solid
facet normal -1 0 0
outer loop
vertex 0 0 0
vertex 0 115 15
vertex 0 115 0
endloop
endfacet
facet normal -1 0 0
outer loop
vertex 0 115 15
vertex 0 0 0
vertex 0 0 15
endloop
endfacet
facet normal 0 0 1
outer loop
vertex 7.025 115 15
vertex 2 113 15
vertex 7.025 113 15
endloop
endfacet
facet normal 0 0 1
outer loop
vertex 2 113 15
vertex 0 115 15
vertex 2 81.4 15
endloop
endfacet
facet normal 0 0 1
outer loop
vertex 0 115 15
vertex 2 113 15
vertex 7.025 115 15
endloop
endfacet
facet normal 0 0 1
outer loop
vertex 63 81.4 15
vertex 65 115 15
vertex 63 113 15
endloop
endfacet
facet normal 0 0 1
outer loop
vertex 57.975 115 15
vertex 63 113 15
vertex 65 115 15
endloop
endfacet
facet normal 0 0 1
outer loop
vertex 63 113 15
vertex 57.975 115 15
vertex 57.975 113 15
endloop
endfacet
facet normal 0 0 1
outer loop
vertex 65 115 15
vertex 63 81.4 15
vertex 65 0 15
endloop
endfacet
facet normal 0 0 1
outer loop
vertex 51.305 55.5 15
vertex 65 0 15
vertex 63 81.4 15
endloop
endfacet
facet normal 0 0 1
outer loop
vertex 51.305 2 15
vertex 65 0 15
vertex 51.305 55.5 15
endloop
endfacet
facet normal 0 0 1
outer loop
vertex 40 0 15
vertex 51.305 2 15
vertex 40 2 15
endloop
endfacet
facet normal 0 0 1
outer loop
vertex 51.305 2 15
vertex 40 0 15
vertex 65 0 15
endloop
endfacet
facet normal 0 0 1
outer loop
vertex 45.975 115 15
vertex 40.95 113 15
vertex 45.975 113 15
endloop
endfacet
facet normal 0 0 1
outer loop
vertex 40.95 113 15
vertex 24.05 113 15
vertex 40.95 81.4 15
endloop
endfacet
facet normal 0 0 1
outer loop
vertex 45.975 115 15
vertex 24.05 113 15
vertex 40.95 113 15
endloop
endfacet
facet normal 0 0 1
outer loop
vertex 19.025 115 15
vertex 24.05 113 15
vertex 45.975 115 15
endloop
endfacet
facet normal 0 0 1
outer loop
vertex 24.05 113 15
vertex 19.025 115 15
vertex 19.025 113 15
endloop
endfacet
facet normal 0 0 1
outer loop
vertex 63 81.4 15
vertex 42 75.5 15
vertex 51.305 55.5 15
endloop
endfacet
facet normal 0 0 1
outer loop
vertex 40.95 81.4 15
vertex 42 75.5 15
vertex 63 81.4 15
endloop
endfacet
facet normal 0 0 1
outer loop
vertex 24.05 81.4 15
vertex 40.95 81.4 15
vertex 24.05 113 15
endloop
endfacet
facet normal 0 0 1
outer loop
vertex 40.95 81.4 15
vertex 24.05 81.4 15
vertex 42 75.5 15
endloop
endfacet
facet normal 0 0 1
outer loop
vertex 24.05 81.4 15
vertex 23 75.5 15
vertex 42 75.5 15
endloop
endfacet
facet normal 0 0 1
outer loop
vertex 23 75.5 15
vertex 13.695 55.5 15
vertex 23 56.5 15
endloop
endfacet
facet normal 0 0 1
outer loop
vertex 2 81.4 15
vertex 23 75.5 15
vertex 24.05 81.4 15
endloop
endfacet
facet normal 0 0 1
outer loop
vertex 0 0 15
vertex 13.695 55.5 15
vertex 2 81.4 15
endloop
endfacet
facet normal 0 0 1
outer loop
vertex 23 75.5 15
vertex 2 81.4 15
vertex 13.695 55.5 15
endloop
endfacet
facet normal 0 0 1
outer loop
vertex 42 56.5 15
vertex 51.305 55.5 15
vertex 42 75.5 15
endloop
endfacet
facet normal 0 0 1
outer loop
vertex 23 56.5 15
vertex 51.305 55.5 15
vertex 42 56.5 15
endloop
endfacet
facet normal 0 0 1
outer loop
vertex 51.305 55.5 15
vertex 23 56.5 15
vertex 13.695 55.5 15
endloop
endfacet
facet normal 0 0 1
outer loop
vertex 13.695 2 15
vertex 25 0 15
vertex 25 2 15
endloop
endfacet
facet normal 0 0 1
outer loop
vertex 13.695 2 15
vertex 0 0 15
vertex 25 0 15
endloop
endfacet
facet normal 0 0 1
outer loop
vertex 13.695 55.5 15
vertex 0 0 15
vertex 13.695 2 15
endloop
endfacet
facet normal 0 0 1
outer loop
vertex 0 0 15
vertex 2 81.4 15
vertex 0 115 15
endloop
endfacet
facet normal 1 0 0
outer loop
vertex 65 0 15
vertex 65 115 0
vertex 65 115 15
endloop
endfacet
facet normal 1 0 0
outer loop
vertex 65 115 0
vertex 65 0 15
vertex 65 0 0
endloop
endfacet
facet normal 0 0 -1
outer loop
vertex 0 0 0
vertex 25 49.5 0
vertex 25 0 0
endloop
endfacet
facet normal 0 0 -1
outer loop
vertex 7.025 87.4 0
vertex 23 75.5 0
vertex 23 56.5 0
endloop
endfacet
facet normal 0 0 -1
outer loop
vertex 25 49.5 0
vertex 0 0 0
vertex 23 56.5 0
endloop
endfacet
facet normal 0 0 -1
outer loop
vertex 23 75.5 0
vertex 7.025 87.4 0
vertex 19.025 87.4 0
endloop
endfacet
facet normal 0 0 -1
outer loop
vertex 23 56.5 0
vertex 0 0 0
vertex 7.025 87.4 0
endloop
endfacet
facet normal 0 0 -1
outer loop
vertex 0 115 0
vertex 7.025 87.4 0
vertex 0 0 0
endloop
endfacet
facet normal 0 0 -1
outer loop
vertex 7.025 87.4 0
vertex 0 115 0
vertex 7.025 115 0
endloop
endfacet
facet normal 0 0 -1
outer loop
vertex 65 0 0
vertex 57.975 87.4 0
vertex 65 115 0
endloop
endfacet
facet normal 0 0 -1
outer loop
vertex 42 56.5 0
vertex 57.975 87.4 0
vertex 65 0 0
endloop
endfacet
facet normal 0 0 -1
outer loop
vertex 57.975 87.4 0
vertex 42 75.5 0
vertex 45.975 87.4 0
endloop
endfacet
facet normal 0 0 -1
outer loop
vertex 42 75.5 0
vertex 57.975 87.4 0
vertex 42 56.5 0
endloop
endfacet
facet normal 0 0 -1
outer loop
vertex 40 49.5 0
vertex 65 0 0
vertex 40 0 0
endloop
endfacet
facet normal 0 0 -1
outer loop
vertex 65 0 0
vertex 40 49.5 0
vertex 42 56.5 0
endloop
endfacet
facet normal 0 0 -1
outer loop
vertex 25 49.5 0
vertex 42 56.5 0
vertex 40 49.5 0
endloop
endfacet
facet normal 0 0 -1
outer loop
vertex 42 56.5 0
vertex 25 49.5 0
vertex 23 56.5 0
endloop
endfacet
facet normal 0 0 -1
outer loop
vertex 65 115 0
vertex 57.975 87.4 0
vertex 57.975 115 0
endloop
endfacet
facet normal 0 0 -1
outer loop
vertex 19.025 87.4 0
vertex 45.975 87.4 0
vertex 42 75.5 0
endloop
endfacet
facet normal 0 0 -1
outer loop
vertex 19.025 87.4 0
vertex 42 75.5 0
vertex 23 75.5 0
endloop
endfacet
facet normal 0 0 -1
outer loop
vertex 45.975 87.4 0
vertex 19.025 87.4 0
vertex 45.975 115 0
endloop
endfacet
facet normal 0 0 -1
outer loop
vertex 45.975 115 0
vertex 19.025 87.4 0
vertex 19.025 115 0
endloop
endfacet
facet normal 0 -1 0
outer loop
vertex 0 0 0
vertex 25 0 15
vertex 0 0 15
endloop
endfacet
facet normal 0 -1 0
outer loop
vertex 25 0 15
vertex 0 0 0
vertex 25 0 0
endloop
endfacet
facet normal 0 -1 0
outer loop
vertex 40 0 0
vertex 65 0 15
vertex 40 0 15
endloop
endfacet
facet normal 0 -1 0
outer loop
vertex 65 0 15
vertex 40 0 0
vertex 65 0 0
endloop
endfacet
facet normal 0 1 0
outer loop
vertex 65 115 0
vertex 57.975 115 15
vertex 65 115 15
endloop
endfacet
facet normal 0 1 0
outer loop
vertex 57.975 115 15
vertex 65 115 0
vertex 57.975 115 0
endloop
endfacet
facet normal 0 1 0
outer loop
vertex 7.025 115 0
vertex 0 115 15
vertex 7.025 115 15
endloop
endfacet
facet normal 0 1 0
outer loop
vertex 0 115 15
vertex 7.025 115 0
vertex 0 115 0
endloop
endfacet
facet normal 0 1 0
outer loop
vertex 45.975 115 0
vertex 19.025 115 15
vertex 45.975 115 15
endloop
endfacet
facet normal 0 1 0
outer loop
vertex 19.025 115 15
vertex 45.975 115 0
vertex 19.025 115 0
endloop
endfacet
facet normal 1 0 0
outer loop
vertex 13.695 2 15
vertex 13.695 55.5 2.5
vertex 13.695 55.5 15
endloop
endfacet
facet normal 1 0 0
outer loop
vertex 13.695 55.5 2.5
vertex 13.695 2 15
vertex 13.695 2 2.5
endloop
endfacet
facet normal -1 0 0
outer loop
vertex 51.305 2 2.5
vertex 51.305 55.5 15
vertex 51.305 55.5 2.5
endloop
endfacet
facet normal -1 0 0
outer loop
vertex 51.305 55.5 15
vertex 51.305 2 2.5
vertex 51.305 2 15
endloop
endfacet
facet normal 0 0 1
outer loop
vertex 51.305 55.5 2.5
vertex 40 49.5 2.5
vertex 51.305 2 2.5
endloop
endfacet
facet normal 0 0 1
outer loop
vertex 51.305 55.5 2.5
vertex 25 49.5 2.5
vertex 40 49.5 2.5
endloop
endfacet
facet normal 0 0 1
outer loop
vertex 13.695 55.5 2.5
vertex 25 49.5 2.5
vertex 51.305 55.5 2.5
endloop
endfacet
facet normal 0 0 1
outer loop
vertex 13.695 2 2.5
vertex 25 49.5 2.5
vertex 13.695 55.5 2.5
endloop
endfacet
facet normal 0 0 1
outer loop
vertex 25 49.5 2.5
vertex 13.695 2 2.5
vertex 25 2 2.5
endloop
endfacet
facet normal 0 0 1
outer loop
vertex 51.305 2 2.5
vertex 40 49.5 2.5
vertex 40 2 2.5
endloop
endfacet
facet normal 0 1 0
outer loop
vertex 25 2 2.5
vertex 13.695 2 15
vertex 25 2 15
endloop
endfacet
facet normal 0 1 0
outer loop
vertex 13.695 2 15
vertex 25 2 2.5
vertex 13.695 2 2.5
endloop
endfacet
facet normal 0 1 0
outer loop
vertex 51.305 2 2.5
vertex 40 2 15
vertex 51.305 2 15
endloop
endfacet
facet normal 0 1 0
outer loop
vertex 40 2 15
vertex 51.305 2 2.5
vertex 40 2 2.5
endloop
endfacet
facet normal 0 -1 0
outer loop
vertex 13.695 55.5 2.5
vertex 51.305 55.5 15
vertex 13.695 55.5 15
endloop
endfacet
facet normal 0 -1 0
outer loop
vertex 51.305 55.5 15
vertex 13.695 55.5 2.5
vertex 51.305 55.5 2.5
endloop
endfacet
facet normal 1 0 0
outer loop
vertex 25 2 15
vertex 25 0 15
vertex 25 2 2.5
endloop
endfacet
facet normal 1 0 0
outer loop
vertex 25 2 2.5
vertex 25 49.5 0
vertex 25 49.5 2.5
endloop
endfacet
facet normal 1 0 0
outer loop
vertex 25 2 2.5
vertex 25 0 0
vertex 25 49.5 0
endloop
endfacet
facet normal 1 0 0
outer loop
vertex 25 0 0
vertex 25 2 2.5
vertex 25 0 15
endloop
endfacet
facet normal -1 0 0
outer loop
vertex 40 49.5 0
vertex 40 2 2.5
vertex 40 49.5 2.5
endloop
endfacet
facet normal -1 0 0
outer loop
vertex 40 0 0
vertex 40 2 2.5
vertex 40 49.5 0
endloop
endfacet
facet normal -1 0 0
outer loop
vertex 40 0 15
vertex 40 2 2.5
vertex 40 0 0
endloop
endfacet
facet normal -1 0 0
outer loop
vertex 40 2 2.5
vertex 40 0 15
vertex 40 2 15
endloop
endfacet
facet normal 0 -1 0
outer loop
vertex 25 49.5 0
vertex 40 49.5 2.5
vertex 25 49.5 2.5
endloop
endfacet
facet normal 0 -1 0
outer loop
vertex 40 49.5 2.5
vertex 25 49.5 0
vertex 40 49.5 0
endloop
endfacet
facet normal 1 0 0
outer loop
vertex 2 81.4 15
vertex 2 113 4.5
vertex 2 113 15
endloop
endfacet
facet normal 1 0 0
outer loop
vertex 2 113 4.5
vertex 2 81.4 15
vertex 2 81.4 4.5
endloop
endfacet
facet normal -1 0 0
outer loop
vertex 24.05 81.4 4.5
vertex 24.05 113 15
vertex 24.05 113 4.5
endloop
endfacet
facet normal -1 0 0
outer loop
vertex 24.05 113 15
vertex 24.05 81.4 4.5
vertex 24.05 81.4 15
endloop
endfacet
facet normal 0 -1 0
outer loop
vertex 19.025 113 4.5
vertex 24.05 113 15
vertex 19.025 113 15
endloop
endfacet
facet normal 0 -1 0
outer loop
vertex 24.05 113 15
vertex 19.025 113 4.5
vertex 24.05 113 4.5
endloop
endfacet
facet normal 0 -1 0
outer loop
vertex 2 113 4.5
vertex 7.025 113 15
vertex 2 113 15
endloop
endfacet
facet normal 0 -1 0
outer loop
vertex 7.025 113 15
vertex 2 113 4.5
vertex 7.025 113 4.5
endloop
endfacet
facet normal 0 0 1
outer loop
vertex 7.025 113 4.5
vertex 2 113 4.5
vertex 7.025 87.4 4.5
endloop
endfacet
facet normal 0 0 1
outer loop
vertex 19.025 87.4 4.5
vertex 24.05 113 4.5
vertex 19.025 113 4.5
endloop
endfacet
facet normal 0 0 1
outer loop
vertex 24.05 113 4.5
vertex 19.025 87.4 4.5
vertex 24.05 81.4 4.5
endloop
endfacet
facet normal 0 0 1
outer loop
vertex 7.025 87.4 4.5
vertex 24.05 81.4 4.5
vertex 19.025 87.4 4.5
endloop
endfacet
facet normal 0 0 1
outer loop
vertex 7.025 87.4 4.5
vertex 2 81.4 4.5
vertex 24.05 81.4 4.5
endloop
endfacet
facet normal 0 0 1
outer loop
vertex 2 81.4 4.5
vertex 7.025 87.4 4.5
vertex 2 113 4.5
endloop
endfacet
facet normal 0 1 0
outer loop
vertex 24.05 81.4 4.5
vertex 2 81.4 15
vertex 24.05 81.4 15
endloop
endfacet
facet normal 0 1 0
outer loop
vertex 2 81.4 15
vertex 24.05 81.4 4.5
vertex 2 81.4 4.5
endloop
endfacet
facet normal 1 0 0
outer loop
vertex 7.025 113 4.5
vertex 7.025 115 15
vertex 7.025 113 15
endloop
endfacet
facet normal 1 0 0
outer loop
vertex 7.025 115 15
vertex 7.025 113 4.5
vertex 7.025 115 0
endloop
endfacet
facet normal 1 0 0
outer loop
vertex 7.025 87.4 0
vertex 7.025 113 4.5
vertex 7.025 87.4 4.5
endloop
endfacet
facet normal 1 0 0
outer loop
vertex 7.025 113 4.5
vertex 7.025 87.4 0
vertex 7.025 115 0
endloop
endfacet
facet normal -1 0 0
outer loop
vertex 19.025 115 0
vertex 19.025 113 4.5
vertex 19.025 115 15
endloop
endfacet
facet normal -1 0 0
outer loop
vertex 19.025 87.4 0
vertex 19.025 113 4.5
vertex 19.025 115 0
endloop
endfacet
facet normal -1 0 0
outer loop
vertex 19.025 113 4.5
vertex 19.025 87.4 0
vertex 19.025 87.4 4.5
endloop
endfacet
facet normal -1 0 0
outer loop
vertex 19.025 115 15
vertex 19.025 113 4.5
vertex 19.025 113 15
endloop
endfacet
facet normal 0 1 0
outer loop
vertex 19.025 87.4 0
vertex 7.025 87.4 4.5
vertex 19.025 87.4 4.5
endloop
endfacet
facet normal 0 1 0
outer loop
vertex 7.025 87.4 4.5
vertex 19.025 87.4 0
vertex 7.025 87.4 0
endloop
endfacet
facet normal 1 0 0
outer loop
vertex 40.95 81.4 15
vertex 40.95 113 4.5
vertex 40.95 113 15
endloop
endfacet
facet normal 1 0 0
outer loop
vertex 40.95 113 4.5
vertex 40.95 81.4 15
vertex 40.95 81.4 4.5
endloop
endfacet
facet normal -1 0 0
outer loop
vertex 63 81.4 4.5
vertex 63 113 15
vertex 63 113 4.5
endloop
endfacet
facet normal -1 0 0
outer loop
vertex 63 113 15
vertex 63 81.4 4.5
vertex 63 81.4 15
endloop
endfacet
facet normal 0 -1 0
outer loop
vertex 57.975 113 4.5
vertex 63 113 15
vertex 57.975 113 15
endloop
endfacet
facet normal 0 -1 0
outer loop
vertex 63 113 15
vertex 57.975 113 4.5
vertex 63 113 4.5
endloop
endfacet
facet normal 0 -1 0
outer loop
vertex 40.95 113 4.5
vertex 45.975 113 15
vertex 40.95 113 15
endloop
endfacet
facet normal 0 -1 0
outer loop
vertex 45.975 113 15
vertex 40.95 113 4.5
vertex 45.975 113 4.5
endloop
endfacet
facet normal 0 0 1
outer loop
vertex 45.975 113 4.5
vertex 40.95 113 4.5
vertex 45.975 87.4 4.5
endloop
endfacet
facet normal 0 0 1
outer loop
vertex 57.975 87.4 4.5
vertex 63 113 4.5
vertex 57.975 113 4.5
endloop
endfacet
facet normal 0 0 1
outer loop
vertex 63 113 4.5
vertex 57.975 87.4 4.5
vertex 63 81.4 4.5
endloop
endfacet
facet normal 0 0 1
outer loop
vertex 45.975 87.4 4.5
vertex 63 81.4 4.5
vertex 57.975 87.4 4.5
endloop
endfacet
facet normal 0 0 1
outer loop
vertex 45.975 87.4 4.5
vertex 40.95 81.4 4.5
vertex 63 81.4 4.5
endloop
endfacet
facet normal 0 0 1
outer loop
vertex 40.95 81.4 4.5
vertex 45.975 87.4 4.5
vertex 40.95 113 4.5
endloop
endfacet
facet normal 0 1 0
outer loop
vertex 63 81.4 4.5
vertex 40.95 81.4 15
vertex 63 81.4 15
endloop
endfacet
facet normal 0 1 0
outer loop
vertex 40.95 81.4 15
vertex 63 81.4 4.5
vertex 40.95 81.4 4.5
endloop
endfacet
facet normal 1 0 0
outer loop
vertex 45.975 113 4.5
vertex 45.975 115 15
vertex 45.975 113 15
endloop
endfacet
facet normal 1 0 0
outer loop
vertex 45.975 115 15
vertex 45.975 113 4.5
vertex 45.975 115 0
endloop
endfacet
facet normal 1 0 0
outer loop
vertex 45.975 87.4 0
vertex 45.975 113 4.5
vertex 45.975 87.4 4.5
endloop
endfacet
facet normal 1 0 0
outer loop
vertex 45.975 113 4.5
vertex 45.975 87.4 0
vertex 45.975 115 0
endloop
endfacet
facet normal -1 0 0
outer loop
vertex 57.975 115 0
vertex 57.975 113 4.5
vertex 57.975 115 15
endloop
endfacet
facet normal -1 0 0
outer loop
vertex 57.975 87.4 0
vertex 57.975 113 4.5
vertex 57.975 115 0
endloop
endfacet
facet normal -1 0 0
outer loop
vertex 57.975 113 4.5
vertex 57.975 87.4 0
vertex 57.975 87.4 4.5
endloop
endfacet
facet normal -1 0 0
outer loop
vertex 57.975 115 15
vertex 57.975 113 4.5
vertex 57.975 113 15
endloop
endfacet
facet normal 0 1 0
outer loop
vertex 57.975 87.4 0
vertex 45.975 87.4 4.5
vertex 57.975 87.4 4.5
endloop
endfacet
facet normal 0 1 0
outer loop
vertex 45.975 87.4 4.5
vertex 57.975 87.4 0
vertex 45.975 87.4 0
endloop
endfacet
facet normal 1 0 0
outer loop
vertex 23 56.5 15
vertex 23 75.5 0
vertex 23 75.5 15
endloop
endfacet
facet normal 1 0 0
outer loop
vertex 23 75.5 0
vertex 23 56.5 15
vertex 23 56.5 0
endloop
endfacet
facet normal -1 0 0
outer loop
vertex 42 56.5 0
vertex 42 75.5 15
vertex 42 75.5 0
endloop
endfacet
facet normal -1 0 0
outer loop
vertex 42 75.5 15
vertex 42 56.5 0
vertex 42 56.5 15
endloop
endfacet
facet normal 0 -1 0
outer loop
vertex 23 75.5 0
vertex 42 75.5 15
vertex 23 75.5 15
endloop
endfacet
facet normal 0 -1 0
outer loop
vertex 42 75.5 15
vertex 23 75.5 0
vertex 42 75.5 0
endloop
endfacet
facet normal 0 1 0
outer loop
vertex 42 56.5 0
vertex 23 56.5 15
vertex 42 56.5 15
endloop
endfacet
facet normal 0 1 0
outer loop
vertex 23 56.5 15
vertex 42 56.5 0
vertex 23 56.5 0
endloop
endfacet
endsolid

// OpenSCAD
length = 65;
width = 115;
height = 15;

//Based on magnet size:
magnetBaseInnerDiameter = 19;
magnetHeight = 4.0;

//golem x 6, 						52.50 x 36.61, base full ish
//scout (2 stacks of 5) 			30.60 x 21.05, base 19.37
magnetOffset = 52.5;

largeTokenWidth = 52.50 + 1;
largeTokenLength = 36.61 + 1;
largeTokenHeight = 12 + .5;
largeTokenSquareLipWidthRemainder = largeTokenLength - 15;
largeTokenSquareLipLengthRemainder = 4;

smallToken1Width = 30.60 + 1;
smallToken1Length = 21.05 + 1;
smallToken1Height = 10 + .5;
smallToken1SquareLipWidthRemainder = smallToken1Length - 12;
smallToken1SquareLipLengthRemainder = 4;

smallToken2Width = 30.60 + 1;
smallToken2Length = 21.05 + 1;
smallToken2Height = 10 + .5;
smallToken2SquareLipWidthRemainder = smallToken2Length - 12;
smallToken2SquareLipLengthRemainder = 4;

spaceBetweenCircles = 2;
wallThickness = spaceBetweenCircles;



difference(){
    cube([length, width, height]);


//----------------------------------
translate(
        [
            length/2 - largeTokenLength/2,
            wallThickness,
            height - largeTokenHeight
        ])
        cube([largeTokenLength,largeTokenWidth, largeTokenHeight]);
    translate([
        length/2 - (largeTokenLength - largeTokenSquareLipWidthRemainder)/2,
        0,
        0])
        cube([
            largeTokenLength - largeTokenSquareLipWidthRemainder,
            largeTokenWidth - largeTokenSquareLipLengthRemainder,
            height]);

            
//---------------------------------------------------------------------
    
    translate(
        [
            wallThickness,
            width - (wallThickness + smallToken1Width),
            height - smallToken1Height
        ])
        cube([smallToken1Length,smallToken1Width, smallToken1Height]);
    translate([
        wallThickness + smallToken1SquareLipWidthRemainder/2,
        width - (smallToken1Width - smallToken1SquareLipLengthRemainder),
        0])
        cube([
            smallToken1Length - smallToken1SquareLipWidthRemainder,
            smallToken1Width - smallToken1SquareLipLengthRemainder,
            height]);

    translate(
        [
            length - (wallThickness + smallToken2Length),
            width - (wallThickness + smallToken2Width),
            height - smallToken2Height
        ])
        cube([smallToken2Length,smallToken2Width, smallToken2Height]);
    translate([
        length - (wallThickness + smallToken2Length) + smallToken2SquareLipWidthRemainder/2,
        width - (smallToken2Width - smallToken2SquareLipLengthRemainder),
        0])
        cube([
            smallToken2Length - smallToken2SquareLipWidthRemainder,
            smallToken2Width - smallToken2SquareLipLengthRemainder,
            height]);       

//----------------------------------------
   
    translate([length/2 - magnetBaseInnerDiameter/2, magnetOffset + wallThickness * 2, 0])
        cube([magnetBaseInnerDiameter, magnetBaseInnerDiameter, height]);
        

}
